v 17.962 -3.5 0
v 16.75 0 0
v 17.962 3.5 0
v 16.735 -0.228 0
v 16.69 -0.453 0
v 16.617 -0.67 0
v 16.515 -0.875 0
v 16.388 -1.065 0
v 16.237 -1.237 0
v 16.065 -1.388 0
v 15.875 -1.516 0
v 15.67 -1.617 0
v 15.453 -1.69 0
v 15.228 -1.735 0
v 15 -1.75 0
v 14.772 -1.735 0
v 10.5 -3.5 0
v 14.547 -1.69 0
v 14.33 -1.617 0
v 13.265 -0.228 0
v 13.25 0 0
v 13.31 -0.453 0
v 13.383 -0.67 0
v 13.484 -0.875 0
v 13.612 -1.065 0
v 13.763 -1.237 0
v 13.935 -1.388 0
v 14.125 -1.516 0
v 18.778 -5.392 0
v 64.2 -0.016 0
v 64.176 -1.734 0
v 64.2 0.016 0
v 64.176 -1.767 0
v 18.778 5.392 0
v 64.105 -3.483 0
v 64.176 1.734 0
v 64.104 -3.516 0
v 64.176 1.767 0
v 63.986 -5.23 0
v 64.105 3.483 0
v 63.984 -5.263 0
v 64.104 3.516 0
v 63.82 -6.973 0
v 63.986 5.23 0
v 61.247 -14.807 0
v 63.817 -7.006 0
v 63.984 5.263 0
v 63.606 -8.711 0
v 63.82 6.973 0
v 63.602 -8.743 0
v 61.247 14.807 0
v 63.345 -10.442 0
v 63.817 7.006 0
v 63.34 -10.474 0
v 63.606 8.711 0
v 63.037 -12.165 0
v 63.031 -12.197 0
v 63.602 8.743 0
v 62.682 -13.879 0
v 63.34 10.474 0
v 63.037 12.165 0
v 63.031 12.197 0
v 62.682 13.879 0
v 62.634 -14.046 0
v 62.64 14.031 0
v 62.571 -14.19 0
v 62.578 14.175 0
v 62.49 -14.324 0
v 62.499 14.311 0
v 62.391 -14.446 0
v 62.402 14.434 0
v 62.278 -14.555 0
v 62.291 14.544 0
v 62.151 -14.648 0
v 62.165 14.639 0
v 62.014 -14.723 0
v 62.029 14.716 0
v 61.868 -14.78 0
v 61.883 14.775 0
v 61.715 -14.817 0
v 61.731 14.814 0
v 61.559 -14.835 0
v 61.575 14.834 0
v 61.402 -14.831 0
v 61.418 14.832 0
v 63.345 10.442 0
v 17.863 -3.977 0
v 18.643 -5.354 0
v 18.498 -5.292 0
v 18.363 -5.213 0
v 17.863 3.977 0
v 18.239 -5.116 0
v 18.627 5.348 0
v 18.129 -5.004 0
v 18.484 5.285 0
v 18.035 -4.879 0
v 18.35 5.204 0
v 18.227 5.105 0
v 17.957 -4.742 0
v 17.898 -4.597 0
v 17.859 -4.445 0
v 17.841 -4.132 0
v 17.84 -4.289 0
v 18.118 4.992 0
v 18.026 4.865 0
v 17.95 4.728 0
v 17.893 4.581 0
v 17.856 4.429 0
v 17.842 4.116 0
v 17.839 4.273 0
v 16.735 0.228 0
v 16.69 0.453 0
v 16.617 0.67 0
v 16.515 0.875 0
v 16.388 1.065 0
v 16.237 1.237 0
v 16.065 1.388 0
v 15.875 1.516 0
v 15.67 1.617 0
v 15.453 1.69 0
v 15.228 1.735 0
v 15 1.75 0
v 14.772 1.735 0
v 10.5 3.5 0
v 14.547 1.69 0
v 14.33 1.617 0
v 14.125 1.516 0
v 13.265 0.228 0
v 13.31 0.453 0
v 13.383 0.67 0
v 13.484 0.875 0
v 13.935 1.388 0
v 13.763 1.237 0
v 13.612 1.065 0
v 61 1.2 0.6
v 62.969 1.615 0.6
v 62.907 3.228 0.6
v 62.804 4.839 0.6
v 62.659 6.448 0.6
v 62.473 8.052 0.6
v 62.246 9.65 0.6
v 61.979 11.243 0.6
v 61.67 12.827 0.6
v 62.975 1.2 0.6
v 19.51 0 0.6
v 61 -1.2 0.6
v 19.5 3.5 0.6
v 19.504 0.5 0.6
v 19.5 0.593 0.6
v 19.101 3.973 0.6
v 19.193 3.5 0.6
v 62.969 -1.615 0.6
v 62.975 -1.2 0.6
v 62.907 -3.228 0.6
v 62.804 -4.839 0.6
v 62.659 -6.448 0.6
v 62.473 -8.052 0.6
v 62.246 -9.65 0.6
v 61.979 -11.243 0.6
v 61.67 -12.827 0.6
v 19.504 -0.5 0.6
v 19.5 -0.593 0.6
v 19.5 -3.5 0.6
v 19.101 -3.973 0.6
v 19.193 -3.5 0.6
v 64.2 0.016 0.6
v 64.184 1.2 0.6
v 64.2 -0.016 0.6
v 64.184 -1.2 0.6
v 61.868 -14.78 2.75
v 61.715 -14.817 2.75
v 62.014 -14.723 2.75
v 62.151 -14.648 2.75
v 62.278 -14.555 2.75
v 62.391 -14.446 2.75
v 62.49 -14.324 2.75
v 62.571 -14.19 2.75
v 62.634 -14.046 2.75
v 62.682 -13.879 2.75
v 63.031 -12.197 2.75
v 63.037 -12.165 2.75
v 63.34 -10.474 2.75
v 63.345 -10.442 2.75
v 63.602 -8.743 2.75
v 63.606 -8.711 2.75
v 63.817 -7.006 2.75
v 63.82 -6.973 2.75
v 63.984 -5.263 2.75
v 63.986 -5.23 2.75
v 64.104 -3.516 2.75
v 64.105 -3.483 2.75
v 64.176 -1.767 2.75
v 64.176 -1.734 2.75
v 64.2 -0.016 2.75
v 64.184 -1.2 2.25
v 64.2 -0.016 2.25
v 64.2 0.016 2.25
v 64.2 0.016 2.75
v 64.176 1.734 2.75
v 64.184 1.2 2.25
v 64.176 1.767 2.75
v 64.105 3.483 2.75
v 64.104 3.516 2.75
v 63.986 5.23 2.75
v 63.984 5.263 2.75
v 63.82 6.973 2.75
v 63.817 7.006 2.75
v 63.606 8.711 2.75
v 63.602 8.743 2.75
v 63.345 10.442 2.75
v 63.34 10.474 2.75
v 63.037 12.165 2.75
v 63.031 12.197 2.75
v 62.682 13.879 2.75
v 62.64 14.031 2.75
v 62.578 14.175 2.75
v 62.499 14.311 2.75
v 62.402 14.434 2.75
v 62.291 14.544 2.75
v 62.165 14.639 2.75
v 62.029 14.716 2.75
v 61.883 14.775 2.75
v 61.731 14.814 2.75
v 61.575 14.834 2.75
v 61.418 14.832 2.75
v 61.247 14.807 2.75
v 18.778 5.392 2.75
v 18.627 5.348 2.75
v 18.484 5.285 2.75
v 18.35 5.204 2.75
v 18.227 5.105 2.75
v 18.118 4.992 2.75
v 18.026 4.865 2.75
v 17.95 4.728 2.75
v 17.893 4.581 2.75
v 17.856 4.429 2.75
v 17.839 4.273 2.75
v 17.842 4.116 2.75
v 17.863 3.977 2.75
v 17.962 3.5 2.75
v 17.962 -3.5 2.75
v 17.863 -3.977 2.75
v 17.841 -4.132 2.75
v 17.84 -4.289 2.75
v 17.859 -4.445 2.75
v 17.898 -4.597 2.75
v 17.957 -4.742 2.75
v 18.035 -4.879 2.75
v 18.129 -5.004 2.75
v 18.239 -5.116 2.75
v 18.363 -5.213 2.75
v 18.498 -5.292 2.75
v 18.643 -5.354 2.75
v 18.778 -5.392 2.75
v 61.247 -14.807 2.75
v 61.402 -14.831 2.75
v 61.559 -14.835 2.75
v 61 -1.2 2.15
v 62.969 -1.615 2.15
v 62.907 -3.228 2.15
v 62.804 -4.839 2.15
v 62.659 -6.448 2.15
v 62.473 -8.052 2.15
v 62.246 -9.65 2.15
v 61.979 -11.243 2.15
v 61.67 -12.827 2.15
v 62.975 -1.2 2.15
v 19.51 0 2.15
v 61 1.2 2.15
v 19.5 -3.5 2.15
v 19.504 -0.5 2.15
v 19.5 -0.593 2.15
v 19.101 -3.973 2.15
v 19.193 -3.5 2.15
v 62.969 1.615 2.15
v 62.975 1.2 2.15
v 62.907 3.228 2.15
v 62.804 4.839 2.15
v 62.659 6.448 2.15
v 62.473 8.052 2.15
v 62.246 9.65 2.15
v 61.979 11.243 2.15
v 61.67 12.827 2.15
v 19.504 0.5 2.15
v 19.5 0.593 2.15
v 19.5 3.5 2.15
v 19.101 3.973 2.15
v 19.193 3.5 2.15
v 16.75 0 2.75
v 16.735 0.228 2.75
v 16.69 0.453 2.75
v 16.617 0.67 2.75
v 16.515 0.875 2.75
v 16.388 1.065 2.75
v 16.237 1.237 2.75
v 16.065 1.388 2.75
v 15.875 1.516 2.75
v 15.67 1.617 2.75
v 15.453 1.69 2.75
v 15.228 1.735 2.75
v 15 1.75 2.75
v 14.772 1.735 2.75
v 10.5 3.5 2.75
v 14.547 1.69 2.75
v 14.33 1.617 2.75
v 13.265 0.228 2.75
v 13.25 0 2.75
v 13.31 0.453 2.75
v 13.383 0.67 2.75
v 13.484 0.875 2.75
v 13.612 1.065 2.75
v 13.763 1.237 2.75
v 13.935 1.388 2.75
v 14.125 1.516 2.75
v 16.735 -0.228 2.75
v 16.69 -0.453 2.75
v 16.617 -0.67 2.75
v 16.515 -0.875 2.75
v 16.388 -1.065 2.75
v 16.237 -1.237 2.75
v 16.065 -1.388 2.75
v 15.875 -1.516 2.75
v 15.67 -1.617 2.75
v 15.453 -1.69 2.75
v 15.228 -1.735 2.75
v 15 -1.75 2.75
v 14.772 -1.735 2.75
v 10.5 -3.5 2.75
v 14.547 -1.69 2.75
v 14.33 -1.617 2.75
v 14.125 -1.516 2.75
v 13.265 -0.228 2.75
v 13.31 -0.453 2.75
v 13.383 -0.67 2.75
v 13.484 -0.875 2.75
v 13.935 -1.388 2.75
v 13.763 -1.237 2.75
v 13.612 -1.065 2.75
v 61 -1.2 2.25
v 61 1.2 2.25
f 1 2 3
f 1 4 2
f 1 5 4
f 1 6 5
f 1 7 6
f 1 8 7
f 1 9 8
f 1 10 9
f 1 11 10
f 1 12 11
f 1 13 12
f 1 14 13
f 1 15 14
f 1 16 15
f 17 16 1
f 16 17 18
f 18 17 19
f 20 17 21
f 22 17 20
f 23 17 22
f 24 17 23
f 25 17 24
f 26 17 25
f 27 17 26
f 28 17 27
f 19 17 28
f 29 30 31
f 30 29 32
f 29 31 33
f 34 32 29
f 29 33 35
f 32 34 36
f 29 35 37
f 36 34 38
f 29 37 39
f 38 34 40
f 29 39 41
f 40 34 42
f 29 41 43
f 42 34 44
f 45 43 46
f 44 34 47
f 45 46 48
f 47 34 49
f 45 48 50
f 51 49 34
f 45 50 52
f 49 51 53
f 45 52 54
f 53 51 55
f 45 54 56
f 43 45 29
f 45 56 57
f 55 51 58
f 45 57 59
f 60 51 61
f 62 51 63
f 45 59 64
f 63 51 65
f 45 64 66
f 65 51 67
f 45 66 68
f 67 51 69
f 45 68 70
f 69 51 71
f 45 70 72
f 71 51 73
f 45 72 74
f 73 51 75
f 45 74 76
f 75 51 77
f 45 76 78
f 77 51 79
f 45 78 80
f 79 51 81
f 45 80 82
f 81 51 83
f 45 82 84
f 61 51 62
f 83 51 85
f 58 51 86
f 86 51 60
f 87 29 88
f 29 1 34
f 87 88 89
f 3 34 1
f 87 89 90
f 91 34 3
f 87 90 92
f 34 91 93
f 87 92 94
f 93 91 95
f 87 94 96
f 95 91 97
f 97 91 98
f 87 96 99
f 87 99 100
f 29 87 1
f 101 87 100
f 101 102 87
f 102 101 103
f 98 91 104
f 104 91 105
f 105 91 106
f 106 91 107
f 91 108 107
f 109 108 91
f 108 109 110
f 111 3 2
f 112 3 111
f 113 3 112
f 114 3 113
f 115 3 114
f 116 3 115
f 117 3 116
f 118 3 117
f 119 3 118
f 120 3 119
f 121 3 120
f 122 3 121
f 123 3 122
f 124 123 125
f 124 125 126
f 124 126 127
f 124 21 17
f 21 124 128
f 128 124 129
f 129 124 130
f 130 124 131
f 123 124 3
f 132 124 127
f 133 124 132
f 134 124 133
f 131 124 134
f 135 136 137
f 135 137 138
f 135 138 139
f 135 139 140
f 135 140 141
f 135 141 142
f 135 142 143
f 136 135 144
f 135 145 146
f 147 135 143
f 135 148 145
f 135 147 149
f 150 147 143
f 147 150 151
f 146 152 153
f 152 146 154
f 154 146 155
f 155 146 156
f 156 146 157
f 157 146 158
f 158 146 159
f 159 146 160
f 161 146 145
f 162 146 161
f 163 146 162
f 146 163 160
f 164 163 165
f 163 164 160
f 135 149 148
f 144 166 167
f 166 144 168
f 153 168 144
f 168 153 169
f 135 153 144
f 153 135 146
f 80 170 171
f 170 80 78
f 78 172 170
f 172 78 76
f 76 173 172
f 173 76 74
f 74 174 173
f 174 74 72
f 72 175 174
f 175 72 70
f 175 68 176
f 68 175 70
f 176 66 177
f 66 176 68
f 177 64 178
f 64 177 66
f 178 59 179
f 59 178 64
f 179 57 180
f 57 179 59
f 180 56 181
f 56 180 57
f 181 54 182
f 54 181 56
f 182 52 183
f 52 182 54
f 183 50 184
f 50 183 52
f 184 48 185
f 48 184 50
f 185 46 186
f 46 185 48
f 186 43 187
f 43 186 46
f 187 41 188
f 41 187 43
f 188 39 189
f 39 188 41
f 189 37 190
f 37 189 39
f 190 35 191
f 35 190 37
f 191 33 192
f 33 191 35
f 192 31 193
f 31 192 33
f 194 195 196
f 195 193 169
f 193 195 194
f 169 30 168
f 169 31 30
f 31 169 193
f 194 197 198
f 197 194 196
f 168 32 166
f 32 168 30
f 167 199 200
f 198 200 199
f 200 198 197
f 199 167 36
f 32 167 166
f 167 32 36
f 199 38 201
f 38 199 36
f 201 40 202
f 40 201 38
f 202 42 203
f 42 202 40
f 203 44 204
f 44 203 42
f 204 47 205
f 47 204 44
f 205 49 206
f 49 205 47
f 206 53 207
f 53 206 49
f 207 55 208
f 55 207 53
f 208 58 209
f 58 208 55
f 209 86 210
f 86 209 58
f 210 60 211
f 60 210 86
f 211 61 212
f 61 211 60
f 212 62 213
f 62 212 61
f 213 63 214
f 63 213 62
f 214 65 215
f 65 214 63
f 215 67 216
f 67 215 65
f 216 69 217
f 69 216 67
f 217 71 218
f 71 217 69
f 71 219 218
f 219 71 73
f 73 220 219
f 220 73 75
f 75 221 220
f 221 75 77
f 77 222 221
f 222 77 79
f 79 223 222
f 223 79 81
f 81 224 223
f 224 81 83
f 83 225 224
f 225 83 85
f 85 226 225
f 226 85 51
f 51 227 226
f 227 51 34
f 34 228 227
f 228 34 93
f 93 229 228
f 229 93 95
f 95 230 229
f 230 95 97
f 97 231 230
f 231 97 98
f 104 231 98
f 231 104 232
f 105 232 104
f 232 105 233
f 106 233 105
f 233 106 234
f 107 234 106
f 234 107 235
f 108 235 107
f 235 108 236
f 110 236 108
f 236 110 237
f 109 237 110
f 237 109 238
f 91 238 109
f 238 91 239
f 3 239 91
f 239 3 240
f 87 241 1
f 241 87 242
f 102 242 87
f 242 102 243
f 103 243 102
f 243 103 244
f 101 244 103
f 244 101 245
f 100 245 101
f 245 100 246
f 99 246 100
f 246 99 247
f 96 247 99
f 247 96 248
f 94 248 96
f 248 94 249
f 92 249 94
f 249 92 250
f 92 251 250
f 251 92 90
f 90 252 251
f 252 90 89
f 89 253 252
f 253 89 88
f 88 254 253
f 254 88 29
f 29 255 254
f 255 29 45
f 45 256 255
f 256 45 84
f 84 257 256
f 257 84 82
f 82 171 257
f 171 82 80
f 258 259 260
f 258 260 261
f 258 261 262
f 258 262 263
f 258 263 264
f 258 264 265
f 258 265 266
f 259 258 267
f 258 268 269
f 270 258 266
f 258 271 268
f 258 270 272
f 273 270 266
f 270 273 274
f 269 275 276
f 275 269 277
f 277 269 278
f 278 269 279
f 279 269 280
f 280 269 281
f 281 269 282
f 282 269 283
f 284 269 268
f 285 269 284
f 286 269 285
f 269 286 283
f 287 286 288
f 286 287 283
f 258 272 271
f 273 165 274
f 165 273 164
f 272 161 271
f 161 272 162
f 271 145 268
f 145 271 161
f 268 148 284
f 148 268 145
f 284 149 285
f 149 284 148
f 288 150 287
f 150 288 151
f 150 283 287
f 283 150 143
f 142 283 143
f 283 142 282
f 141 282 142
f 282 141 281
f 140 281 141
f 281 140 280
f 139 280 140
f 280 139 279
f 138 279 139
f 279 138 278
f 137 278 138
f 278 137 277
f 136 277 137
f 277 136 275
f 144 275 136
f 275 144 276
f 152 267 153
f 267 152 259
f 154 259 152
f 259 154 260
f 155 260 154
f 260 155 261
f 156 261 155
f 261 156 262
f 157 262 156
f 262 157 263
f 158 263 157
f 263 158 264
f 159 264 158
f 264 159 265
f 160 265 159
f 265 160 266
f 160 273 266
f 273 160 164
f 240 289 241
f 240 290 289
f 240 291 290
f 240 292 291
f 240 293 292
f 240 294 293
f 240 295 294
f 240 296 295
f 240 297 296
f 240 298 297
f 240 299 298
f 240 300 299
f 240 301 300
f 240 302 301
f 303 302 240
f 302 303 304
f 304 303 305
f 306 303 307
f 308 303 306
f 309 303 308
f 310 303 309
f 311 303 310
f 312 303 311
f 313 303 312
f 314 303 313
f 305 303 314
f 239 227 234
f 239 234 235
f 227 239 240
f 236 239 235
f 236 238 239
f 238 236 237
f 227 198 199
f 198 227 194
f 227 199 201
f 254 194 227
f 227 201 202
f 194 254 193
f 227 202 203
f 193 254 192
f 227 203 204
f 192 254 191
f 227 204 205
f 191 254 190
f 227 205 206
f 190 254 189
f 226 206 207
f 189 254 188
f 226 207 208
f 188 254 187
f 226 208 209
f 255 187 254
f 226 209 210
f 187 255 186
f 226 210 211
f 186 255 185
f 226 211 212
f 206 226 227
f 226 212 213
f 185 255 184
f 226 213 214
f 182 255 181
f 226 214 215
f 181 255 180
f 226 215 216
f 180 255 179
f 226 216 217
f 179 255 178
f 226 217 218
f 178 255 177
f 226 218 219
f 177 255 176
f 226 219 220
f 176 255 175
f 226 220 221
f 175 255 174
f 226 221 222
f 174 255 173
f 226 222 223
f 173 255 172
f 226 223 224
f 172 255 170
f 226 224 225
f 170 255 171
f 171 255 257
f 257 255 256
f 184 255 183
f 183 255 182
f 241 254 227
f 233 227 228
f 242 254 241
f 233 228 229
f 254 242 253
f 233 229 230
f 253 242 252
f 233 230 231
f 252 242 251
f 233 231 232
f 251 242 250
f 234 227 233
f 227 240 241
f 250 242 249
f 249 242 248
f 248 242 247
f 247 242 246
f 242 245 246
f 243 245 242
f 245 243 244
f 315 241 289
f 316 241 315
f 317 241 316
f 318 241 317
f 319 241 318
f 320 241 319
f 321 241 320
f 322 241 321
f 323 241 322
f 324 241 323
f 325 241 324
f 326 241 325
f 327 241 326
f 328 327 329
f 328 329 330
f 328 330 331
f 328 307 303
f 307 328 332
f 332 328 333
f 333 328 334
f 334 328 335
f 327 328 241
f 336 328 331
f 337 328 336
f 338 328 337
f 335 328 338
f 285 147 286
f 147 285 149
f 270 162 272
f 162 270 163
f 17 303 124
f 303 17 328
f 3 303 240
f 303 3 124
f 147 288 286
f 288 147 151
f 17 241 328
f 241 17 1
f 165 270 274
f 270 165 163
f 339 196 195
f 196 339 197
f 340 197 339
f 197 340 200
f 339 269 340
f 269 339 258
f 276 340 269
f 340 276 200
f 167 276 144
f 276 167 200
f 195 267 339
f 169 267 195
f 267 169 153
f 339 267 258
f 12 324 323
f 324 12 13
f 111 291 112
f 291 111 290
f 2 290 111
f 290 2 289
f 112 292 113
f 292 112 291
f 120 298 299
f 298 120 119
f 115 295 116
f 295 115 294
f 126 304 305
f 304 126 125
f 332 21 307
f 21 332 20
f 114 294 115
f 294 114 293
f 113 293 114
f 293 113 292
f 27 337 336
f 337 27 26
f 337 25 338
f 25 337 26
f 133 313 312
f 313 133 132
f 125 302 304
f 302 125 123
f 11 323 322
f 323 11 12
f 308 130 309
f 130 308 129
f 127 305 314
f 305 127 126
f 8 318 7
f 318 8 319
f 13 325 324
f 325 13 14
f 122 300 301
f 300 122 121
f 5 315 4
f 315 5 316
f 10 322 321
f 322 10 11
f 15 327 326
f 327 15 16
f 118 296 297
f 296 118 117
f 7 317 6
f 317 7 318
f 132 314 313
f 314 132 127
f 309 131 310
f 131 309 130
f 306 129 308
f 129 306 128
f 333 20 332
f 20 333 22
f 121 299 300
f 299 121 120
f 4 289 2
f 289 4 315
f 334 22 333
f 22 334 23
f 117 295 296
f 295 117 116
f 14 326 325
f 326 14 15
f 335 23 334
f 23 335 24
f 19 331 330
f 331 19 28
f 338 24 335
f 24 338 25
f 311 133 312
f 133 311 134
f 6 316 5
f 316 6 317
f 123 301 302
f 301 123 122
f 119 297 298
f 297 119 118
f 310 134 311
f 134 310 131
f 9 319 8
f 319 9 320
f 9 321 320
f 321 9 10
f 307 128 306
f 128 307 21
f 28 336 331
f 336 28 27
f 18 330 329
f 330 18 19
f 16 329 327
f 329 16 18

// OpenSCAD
// file: parameters.scad
// =============================================================================
// Gen-AG Vernier flux-claw hyper-nano — WOUND-AWARE (HARD GATE)
// Improve Gen-AG: tighter m2m 5.11, more copper (165 t), run_clear 0.55
// =============================================================================

wire_awg            = 26;
wire_od             = 0.45;
turns               = 165;      // +10 vs Gen-AG 155
fill                = 0.70;
layers_per_face     = 2;
wind_build_axial    = layers_per_face * wire_od * fill;   // 0.63
wind_build_radial   = 3 * wire_od * fill;                 // 0.945

coil_id_r           = 19.5;
coil_od_r           = 63.0;
span_deg            = 25.0;     // 12 stations; vernier vs 16-pole equiv
former_web          = 1.55;
flange_t            = 0.60;
wall                = 1.2;
slot_w              = 2.4;
mount_hole          = 3.5;
tab_len             = 7.0;

former_bare_h       = former_web + 2 * flange_t;            // 2.75
coil_envelope_h     = former_bare_h + 2 * wind_build_axial; // 4.01

run_clear           = 0.55;
gap_spacer_h        = run_clear + wind_build_axial;         // 1.18
m2m                 = coil_envelope_h + 2 * run_clear;      // 5.11 (beats Gen-AG 5.46)

coil_stations       = 12;
bay_r_in            = coil_id_r - 2.0 - wind_build_radial;
bay_r_out           = coil_od_r + 2.0 + wind_build_radial;
bay_span            = span_deg + 4.0;
bay_offset          = 2.0;
stator_thick        = former_bare_h;
stator_od           = 156.0;
shaft_clear_stator  = 36.0;
coil_mount_r        = 28.0;

// Dual rotors: 8+8 Ø20 vernier poles + 24+24 Ø5 flux claws / edge assists
large_pocket_d      = 20.3;
small_pocket_d      = 5.3;
pocket_h            = 5.2;
large_n             = 8;
R_large             = 50.0;
R_small_inner       = 36.0;     // claw inner
R_small_mid         = 50.0;
R_small_outer       = 64.0;
carrier_od          = 152.0;
carrier_thick       = 7.5;
hub_h               = 10.0;
hub_od              = 30.0;
rotor_b_offset_deg  = 22.5;     // vernier offset

shaft_bore          = 8.35;
bearing_d           = 21.85;
bearing_h           = 7.2;
m3_clear            = 3.5;
bolt_r_inner        = 36.0;
bolt_n_inner        = 6;
flange_bolt_r       = 72.0;
flange_bolt_n       = 6;
brace_r             = 68.0;
brace_d             = 4.3;
brace_n             = 4;

spacer_pad_od       = 14.0;
spacer_pad_id       = m3_clear;
endbell_od          = 156.0;
endbell_thick       = 8.0;
endbell_shaft_clear = 10.0;

$fn = 64;
// main file
// Gen-AG pancake former — print ×12
// WOUND: wind_build_axial computed in parameters.scad; wind BEFORE assembly
include <parameters.scad>;
$fn = 48;

module sector_2d(r_in, r_out, ang) {
    polygon([
        for (a = [-ang/2 : ang/16 : ang/2]) [r_in*cos(a), r_in*sin(a)],
        for (a = [ang/2 : -ang/16 : -ang/2]) [r_out*cos(a), r_out*sin(a)]
    ]);
}
module flange() {
    linear_extrude(flange_t) offset(r=wall) sector_2d(coil_id_r, coil_od_r, span_deg);
}
difference() {
    union() {
        flange();
        translate([0, 0, flange_t])
            linear_extrude(former_web)
                difference() {
                    offset(r=wall) sector_2d(coil_id_r, coil_od_r, span_deg);
                    sector_2d(coil_id_r + 0.01, coil_od_r - 0.01, span_deg - 1.5);
                }
        translate([0, 0, flange_t + former_web]) flange();
        translate([coil_id_r - tab_len - 2, -3.5, 0])
            cube([tab_len + 2, 7, former_bare_h]);
    }
    translate([coil_od_r - 2, -slot_w/2, flange_t])
        cube([wall + 4, slot_w, former_web + 0.1]);
    translate([coil_id_r - tab_len/2 - 1, 0, -0.1])
        cylinder(d=mount_hole, h=former_bare_h + 1);
}
